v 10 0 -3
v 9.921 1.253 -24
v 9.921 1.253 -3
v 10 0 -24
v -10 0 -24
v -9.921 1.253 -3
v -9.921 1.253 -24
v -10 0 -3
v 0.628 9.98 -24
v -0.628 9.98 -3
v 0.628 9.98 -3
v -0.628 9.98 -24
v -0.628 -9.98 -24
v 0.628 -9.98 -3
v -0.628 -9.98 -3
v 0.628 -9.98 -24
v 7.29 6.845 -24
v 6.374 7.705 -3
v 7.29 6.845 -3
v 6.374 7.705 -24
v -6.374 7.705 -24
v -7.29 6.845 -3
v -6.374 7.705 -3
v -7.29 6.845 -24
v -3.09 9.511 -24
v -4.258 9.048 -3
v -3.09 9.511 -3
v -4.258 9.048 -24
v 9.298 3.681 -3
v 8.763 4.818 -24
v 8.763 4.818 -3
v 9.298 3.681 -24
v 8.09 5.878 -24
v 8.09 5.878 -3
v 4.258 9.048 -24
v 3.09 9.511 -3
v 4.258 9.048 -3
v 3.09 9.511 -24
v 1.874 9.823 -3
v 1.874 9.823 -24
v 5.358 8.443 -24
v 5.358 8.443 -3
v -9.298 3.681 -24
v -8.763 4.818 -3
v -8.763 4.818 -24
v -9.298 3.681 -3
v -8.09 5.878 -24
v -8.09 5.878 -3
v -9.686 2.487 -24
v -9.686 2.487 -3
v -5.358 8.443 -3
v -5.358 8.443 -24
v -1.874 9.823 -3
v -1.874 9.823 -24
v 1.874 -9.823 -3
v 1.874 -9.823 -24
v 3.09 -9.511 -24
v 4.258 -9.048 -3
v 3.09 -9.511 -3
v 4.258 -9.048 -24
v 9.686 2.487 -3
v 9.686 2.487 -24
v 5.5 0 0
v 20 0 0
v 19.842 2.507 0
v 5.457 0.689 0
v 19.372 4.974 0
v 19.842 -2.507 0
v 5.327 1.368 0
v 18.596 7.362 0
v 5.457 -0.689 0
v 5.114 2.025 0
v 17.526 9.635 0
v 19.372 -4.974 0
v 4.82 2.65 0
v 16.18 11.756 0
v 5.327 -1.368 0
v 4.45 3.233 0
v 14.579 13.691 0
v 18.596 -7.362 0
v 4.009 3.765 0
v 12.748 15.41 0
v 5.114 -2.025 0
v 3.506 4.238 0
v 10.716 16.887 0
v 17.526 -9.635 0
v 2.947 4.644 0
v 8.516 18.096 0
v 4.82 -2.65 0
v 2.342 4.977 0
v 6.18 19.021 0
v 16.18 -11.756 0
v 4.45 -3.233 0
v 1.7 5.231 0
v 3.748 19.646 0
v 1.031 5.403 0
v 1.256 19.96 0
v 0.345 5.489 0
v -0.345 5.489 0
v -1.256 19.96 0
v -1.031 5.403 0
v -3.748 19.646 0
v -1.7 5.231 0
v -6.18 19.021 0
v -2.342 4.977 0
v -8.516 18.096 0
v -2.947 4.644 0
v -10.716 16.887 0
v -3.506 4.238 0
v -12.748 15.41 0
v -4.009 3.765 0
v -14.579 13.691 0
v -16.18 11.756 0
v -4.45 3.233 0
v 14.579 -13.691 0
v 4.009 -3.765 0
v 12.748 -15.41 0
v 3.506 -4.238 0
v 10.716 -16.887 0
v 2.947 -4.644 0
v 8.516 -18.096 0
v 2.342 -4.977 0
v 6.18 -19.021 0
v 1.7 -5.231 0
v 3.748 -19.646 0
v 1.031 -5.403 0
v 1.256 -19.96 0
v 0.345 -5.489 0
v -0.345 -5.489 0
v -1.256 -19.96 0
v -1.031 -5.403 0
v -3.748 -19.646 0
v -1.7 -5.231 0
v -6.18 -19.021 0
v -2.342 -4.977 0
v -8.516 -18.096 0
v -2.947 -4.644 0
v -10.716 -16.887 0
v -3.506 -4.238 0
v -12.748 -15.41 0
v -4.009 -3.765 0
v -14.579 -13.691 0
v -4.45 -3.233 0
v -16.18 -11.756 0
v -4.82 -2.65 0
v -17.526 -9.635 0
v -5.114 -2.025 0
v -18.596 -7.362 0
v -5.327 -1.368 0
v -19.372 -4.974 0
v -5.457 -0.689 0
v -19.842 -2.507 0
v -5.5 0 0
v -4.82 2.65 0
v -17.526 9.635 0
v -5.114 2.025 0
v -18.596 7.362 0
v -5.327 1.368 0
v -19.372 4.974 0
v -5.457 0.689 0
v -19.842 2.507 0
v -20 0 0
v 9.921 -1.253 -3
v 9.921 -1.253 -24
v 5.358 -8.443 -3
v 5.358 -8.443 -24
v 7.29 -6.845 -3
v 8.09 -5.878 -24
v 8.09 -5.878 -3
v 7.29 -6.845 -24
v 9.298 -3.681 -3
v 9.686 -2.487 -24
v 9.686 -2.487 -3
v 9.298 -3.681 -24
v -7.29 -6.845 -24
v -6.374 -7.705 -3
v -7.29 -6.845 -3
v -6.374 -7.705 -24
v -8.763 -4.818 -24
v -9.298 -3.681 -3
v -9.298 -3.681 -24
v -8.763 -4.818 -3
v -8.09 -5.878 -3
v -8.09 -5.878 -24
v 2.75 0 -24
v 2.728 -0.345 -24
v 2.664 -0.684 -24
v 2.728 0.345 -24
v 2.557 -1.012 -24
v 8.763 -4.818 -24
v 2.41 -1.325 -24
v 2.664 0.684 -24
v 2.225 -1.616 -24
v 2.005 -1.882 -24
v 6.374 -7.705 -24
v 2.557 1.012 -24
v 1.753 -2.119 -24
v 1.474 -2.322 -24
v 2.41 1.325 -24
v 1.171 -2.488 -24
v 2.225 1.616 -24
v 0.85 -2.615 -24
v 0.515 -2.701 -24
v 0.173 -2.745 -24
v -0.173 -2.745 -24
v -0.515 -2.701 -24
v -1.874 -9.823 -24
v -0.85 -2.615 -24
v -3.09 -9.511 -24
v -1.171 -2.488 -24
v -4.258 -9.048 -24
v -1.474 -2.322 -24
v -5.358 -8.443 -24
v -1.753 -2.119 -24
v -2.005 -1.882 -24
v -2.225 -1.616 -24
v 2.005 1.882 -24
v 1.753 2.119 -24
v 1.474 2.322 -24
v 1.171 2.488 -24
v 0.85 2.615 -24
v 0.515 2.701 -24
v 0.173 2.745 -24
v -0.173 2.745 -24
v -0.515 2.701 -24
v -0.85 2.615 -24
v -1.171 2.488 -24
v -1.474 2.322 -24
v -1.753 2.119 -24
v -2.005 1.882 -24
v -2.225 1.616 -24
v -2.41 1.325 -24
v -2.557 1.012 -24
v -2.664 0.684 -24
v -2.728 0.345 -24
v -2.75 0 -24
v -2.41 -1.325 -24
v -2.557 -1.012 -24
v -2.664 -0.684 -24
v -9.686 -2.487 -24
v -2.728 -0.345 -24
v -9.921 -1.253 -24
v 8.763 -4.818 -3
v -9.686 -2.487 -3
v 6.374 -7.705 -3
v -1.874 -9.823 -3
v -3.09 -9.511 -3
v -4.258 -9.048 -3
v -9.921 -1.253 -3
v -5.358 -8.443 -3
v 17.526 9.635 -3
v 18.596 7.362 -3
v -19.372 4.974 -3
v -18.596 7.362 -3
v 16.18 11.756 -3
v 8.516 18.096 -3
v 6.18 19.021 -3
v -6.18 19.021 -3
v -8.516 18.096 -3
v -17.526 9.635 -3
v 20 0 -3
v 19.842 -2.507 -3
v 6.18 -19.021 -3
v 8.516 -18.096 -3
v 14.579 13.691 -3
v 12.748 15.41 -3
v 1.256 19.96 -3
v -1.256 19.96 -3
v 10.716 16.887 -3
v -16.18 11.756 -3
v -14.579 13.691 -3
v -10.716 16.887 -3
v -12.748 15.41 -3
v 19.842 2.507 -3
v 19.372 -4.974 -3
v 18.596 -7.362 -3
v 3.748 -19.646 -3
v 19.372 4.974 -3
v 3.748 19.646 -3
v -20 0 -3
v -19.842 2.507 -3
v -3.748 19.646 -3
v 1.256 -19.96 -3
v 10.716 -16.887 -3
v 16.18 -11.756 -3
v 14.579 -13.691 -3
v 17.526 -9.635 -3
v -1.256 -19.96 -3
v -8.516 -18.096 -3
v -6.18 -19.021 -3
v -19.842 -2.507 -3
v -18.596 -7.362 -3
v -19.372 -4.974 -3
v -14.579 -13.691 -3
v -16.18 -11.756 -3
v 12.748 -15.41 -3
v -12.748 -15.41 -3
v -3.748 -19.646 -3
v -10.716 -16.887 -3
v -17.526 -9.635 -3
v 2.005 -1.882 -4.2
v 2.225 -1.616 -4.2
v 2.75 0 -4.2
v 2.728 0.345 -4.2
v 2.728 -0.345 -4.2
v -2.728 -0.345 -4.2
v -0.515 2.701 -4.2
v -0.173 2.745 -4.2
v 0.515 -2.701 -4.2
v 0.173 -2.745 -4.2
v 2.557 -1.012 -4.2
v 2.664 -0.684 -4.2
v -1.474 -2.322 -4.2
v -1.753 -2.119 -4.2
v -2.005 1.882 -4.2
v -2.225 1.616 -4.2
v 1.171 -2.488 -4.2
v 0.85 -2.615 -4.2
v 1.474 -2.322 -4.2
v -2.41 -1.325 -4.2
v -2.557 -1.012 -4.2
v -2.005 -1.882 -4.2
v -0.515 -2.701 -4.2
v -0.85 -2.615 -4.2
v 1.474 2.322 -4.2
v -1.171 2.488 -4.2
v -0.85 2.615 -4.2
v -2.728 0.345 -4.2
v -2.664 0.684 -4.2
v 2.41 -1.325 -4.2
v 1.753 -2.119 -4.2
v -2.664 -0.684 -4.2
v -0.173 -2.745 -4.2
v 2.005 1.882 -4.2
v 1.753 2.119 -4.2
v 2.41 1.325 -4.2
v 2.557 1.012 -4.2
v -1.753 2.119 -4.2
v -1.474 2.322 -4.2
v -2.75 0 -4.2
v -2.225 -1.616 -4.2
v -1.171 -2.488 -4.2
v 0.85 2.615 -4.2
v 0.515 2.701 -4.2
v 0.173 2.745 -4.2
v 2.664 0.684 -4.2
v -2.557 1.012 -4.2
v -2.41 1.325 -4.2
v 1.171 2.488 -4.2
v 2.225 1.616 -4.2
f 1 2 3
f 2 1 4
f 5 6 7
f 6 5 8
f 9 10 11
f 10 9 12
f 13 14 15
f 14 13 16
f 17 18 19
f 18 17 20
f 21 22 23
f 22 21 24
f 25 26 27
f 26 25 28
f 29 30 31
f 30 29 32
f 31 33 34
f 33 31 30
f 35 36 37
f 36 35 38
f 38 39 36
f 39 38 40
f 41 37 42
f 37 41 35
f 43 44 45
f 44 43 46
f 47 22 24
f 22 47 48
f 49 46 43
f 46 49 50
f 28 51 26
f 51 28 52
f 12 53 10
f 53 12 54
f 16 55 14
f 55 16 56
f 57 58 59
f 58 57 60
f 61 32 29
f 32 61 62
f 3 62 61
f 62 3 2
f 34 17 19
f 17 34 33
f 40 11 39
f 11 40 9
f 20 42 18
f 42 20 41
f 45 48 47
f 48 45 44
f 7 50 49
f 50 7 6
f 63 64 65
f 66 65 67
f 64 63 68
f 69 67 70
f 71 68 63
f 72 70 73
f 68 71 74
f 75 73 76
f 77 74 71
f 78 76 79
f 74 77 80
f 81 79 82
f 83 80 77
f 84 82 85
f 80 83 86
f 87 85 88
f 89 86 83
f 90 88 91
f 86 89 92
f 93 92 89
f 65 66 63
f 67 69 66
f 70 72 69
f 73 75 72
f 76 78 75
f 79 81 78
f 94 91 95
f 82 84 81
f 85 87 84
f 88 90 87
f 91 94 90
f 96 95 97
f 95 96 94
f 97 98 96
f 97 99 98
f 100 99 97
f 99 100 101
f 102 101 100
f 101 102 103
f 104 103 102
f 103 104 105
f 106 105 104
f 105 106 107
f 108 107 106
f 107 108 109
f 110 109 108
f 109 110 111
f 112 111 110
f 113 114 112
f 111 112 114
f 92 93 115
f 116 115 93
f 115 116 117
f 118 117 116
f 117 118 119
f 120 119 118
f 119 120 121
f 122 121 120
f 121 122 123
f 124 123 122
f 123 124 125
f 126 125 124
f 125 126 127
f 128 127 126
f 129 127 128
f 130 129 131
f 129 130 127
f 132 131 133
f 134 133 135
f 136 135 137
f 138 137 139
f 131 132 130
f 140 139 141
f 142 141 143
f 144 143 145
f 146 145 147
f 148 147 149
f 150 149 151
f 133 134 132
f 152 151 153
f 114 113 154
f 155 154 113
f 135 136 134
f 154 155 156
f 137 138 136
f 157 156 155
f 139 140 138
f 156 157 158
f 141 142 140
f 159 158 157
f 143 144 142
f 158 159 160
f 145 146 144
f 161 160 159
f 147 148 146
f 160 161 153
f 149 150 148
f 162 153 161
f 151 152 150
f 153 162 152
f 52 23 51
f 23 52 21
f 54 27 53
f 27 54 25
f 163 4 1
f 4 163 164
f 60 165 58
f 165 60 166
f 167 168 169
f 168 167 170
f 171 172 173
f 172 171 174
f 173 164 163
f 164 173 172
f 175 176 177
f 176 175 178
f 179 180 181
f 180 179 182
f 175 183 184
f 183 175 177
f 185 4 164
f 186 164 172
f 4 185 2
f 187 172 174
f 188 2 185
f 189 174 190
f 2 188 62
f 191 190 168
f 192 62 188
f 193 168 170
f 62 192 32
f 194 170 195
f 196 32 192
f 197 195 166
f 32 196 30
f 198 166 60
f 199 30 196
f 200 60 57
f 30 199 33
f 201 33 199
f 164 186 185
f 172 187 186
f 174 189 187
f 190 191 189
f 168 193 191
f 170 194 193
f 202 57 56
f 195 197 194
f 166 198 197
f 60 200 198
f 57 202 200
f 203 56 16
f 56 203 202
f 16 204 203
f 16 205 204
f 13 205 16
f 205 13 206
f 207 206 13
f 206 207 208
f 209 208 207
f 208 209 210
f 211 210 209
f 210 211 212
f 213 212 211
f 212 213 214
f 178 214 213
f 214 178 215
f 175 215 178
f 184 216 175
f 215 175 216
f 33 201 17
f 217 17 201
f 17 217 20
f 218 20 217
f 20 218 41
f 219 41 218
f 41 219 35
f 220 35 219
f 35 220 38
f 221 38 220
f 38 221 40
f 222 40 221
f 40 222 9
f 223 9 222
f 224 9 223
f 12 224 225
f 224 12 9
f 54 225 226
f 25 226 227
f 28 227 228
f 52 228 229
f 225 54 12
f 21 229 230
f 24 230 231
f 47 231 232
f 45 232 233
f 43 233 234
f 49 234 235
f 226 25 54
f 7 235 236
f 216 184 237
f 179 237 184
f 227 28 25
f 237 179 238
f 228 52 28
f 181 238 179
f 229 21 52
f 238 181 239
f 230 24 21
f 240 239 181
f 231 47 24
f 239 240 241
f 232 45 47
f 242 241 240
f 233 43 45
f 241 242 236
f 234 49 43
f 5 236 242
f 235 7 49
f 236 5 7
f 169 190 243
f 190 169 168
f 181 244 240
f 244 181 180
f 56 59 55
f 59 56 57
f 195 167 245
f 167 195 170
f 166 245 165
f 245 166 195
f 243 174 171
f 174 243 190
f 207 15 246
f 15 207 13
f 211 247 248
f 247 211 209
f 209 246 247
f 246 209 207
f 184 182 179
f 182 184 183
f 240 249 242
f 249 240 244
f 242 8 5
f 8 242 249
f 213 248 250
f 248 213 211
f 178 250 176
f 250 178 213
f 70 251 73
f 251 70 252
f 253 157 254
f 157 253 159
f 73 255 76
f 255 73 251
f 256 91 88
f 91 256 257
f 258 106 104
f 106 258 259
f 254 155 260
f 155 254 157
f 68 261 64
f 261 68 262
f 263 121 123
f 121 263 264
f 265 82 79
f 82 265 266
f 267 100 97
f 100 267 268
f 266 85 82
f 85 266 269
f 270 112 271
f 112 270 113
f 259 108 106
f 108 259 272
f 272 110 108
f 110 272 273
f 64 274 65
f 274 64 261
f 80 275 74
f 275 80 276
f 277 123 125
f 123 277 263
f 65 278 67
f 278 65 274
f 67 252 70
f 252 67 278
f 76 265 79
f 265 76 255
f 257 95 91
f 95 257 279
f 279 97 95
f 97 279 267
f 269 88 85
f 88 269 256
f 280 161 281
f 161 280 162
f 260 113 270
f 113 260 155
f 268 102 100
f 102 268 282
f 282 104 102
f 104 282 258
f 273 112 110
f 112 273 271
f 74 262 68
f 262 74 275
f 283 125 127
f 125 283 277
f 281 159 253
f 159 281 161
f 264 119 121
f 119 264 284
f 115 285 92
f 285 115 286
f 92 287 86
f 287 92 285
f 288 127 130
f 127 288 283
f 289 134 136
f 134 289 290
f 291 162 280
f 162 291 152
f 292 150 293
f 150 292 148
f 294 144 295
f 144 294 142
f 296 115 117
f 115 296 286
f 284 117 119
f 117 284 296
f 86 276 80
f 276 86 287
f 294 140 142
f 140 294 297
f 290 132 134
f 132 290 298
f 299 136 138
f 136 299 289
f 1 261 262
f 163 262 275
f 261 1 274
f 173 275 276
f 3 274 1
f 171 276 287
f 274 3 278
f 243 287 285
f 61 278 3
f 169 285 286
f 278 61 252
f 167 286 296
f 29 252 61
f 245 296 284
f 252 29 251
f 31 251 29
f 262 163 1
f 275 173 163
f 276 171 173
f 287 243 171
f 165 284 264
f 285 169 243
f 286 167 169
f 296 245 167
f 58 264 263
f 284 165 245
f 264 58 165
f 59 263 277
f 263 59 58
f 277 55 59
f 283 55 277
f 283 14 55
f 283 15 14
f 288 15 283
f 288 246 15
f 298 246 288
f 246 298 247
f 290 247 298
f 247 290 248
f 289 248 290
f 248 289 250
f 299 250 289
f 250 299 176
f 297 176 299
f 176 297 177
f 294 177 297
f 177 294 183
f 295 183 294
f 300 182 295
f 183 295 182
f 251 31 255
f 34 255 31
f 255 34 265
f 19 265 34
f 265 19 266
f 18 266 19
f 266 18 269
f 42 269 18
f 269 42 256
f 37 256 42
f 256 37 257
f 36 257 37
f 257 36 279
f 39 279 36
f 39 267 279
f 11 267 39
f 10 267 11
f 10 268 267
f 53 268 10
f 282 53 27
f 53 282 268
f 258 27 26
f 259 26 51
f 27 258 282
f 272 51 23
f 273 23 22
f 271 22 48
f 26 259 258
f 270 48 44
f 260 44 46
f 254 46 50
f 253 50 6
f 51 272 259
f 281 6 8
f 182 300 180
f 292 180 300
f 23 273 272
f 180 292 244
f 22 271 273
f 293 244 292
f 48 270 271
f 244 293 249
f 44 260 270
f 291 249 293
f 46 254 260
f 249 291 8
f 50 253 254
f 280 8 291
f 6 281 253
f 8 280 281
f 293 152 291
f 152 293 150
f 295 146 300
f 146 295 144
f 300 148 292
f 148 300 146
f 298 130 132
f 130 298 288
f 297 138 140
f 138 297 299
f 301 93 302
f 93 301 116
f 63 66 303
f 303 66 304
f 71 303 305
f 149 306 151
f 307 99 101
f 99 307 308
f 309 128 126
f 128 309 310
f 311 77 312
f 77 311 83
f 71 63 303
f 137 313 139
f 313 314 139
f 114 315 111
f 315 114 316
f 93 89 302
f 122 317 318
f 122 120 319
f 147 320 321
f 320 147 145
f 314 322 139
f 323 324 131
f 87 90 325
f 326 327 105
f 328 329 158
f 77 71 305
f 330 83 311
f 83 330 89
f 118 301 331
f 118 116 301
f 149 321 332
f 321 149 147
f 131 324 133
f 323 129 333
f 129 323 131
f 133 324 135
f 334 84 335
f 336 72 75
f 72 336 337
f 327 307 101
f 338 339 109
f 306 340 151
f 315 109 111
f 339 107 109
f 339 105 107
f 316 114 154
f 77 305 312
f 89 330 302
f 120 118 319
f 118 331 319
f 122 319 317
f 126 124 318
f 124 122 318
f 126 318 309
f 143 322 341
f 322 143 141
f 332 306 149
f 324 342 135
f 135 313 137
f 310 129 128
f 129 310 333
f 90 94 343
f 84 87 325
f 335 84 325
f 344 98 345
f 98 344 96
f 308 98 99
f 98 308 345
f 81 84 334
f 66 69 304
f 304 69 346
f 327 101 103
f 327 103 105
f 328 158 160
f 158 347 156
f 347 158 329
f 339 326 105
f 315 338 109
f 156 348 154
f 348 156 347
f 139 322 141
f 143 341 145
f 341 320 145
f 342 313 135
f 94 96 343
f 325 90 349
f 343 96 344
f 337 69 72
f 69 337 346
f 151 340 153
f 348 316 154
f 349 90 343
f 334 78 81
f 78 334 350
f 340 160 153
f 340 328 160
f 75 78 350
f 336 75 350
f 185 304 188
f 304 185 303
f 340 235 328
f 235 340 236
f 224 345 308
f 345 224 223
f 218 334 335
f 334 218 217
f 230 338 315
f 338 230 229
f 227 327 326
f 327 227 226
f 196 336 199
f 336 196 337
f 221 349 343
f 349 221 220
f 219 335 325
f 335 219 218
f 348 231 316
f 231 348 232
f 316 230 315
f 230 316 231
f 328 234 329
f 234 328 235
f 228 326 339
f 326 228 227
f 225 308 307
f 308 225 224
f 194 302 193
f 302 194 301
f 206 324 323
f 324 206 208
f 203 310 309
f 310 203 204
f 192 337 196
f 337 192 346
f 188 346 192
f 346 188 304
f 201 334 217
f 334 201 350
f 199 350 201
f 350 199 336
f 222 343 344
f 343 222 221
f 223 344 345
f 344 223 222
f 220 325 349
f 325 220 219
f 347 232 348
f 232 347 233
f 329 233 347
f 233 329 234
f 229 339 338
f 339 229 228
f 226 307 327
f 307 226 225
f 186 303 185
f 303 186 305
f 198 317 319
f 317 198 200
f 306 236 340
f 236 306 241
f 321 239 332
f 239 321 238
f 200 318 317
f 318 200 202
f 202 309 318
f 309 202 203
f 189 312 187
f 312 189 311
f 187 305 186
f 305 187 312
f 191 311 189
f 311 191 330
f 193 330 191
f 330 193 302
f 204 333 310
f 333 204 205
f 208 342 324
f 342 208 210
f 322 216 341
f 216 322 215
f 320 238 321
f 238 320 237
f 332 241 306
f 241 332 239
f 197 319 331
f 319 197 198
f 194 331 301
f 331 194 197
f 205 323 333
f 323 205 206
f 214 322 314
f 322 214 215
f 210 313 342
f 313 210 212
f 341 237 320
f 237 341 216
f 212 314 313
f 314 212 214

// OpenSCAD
$fn = 50;


difference() {
	union() {
		translate(v = [0, 0, -24.0000000000]) {
			cylinder(h = 24, r = 10.0000000000);
		}
		translate(v = [0, 0, -3.0000000000]) {
			cylinder(h = 3, r = 20.0000000000);
		}
	}
	union() {
		translate(v = [0, 0, 0]) {
			rotate(a = [0, 0, 0]) {
				difference() {
					union() {
						#translate(v = [0, 0, -24.0000000000]) {
							cylinder(h = 24, r = 2.2500000000);
						}
						#translate(v = [0, 0, -4.2000000000]) {
							cylinder(h = 4.2000000000, r = 10.0000000000, r1 = 2.7500000000, r2 = 5.5000000000);
						}
						#translate(v = [0, 0, -24.0000000000]) {
							cylinder(h = 24, r = 2.7500000000);
						}
						#translate(v = [0, 0, -24.0000000000]) {
							cylinder(h = 24, r = 2.2500000000);
						}
					}
					union();
				}
			}
		}
	}
}
